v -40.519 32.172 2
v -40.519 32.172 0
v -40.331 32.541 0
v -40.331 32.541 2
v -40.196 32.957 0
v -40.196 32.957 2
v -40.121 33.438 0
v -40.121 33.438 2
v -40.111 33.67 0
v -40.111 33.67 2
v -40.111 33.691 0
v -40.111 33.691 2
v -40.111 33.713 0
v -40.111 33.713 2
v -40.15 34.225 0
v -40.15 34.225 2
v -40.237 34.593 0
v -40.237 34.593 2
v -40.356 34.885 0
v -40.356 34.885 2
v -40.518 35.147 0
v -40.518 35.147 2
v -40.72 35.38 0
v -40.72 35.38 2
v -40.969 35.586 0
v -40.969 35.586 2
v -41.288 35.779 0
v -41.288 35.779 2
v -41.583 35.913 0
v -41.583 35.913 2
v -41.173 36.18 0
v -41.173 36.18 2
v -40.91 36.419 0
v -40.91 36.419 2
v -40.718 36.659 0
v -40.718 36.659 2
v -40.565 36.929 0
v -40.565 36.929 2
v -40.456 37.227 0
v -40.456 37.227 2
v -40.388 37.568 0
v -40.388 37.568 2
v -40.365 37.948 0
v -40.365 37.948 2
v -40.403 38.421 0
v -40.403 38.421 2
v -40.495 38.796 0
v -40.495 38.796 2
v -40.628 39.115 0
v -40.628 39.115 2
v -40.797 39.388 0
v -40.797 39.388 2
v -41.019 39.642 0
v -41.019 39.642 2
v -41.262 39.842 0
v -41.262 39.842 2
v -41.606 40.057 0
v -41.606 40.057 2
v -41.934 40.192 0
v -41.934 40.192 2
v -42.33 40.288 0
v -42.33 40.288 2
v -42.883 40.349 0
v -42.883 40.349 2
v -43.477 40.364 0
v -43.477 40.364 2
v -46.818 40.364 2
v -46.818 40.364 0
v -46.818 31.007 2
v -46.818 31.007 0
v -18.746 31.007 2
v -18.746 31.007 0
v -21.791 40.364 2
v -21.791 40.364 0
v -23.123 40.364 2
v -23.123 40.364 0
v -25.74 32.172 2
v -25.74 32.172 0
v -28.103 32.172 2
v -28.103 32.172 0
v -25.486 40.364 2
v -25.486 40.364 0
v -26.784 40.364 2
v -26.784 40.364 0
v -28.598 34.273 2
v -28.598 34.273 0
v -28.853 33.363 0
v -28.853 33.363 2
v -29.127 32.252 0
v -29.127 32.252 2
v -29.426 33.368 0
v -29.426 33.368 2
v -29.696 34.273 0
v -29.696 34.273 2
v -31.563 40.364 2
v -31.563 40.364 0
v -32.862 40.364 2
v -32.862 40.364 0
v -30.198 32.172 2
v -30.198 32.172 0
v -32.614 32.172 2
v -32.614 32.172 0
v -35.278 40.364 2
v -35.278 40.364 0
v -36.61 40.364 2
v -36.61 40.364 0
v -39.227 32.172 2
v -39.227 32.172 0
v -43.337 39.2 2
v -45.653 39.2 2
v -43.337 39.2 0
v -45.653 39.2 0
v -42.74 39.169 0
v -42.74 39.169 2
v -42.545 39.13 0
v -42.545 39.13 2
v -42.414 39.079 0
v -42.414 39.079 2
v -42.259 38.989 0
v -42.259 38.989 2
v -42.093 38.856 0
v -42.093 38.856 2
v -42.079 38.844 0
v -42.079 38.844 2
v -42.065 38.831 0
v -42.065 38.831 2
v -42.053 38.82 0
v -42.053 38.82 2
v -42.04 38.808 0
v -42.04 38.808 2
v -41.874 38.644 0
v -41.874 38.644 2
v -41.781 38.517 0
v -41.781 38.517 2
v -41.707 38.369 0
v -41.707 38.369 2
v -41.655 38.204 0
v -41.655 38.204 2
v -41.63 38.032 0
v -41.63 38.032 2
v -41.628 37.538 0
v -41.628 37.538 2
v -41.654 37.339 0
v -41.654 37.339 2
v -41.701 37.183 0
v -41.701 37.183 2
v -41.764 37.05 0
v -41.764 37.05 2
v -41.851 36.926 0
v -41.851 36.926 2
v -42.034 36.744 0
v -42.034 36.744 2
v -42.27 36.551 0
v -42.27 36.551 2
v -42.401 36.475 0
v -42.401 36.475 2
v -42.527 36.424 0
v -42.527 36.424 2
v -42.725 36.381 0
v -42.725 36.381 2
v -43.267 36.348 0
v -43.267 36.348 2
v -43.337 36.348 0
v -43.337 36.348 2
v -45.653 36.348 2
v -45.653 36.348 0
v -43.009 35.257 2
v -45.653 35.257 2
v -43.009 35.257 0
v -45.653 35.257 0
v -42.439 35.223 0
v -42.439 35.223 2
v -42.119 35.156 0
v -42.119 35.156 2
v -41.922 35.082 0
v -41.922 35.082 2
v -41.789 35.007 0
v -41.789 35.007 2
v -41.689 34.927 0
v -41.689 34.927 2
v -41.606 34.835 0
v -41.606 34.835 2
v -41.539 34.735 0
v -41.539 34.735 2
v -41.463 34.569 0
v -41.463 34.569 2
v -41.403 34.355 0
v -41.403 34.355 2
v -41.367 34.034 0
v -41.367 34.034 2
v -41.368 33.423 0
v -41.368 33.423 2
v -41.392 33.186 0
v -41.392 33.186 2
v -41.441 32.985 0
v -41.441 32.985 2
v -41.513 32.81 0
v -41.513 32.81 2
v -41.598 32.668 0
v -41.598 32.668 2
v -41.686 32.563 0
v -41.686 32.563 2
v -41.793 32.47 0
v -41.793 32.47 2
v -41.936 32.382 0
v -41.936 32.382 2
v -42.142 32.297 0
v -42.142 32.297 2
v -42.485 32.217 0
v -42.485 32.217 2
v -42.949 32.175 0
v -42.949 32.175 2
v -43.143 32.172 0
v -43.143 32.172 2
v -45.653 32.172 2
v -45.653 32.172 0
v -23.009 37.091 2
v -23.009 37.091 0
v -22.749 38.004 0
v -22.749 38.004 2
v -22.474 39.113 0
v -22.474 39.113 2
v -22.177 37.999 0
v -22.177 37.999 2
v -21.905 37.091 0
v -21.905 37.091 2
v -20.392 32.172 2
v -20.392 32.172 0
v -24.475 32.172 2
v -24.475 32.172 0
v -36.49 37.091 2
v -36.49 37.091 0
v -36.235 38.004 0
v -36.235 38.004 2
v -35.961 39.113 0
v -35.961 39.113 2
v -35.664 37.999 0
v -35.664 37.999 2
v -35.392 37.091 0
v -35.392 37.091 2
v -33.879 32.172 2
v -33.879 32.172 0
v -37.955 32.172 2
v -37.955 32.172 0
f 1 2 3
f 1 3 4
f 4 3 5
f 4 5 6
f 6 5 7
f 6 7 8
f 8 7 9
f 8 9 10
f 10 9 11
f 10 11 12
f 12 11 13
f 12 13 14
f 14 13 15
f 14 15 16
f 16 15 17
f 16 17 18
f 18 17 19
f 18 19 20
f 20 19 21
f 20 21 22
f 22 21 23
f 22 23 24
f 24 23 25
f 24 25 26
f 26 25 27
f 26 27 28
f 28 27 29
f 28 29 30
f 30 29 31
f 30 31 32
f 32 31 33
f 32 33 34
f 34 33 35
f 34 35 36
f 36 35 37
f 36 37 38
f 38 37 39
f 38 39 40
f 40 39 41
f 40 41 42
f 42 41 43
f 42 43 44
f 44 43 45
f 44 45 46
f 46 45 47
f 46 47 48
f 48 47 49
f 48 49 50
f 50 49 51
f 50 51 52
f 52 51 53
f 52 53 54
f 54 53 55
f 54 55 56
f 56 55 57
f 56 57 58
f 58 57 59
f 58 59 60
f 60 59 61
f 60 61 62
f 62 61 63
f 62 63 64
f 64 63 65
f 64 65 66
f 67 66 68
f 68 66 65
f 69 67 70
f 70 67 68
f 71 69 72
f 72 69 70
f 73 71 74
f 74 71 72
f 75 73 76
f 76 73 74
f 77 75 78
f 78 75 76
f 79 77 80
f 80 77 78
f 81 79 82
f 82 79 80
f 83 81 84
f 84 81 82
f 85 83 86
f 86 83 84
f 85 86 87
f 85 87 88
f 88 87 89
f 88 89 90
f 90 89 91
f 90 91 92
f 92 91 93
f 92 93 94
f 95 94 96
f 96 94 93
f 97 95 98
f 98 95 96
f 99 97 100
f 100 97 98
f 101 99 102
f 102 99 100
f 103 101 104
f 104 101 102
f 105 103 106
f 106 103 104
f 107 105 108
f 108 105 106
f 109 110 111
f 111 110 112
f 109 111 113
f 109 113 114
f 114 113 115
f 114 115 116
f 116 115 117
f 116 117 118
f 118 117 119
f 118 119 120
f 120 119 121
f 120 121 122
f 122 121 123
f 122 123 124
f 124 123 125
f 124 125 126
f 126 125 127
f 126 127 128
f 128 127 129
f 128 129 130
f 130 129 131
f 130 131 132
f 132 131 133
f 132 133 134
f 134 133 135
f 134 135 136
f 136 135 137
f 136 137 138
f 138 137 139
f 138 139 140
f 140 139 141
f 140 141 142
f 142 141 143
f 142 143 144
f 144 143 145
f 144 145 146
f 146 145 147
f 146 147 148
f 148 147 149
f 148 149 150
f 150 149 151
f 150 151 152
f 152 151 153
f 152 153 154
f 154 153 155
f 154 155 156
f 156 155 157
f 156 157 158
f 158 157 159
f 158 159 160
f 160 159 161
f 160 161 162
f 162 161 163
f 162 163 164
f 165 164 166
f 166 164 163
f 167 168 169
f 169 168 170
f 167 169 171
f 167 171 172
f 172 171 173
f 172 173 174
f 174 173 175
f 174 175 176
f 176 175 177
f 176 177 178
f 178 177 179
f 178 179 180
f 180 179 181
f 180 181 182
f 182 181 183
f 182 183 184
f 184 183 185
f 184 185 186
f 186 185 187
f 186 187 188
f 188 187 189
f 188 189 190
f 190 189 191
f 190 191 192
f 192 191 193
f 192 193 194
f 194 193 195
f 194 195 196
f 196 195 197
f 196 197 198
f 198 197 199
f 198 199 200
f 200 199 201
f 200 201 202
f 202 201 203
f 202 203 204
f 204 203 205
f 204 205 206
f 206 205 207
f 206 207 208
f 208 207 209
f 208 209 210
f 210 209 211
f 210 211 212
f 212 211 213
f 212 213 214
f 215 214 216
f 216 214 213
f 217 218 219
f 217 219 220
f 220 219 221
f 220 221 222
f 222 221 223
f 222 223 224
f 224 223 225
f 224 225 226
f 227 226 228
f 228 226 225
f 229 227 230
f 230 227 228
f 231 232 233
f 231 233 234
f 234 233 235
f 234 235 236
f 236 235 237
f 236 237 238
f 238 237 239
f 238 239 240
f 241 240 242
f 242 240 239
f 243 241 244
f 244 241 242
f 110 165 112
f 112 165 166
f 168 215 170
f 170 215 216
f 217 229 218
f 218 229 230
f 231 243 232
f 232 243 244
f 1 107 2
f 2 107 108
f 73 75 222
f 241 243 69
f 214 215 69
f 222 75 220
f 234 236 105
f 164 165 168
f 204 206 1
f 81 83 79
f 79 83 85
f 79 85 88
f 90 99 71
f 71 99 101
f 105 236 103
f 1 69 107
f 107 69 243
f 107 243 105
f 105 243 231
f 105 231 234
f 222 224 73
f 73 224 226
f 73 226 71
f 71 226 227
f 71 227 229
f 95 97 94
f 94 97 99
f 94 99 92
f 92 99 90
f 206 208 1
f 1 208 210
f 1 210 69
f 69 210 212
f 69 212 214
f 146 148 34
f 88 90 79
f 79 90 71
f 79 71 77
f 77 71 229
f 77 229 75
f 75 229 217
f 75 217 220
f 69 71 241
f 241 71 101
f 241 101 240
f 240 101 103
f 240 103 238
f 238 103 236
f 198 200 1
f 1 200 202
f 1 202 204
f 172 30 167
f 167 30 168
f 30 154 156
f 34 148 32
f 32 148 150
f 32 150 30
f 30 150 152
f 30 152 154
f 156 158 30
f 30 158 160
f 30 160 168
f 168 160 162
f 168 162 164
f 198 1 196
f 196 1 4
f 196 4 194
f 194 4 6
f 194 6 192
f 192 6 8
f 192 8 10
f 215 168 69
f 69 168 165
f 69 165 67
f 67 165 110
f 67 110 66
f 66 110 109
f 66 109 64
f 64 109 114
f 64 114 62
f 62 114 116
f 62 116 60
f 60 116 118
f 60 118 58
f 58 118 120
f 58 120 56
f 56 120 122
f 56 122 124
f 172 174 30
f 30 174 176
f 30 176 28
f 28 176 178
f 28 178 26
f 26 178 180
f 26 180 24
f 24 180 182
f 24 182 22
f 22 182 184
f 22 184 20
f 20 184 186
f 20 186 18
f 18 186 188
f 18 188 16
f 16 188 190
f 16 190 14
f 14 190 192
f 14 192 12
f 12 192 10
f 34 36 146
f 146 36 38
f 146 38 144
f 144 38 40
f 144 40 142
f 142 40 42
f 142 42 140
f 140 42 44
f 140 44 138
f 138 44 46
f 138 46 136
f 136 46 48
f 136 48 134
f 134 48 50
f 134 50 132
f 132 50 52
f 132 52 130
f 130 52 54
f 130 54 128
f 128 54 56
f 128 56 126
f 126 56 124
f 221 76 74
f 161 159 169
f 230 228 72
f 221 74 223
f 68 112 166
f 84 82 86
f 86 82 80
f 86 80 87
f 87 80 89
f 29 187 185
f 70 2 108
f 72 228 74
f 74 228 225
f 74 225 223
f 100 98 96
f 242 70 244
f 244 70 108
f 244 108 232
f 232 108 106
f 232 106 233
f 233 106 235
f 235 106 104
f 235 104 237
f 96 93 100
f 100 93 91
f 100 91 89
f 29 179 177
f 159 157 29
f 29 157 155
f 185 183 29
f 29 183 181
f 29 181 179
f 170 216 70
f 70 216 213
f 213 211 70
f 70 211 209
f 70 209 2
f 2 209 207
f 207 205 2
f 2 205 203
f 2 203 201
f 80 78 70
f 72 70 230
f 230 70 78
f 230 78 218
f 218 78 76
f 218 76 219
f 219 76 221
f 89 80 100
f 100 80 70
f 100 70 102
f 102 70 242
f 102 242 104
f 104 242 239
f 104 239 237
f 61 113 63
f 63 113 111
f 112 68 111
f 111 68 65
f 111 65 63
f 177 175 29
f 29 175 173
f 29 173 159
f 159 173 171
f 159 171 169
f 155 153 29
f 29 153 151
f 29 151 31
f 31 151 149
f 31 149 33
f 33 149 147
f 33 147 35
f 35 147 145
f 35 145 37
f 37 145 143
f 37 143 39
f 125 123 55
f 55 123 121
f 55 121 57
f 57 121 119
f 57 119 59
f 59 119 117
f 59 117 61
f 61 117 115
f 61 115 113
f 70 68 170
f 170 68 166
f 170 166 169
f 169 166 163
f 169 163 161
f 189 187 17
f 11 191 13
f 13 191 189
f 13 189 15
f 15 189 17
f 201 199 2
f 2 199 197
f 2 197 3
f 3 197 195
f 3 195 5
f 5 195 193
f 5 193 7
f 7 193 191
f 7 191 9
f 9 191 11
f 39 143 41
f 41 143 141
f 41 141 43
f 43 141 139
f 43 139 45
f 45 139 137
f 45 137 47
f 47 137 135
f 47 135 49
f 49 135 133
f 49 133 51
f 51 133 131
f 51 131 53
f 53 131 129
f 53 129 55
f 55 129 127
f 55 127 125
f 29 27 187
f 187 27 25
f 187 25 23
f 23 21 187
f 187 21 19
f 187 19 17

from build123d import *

# Parameters (mm, degrees)
BOSS_EXTRUDE1_DEPTH = 2


with BuildPart() as part:
    # Sketch1 → Boss-Extrude1 (new body)
    with BuildSketch(Plane.XY):
        with BuildLine():
            Line((-18.745582546, 31.006914048), (-21.79105099, 40.364252392))
            Line((-21.79105099, 40.364252392), (-23.123022137, 40.364252392))
            Line((-23.123022137, 40.364252392), (-25.740106044, 32.171592169))
            Line((-25.740106044, 32.171592169), (-28.102880037, 32.171592169))
            Line((-28.102880037, 32.171592169), (-25.485755278, 40.364252392))
            Line((-25.485755278, 40.364252392), (-26.78426782, 40.364252392))
            Line((-26.78426782, 40.364252392), (-28.598181785, 34.273274652))
            add(Edge.make_bspline(
                [(-28.598181785, 34.273274652), (-28.792274379, 33.597239241), (-28.906090832, 33.19565427), (-29.126942139, 32.251909163)],
                knots=[6, 6, 6, 6, 7, 7, 7, 7], degree=3))
            add(Edge.make_bspline(
                [(-29.126942139, 32.251909163), (-29.414792363, 33.316129761), (-29.448250968, 33.490163533), (-29.695901842, 34.273274652)],
                knots=[7, 7, 7, 7, 8, 8, 8, 8], degree=3))
            Line((-29.695901842, 34.273274652), (-31.563333235, 40.364252392))
            Line((-31.563333235, 40.364252392), (-32.861845777, 40.364252392))
            Line((-32.861845777, 40.364252392), (-30.197903482, 32.171592169))
            Line((-30.197903482, 32.171592169), (-32.614194903, 32.171592169))
            Line((-32.614194903, 32.171592169), (-35.278137198, 40.364252392))
            Line((-35.278137198, 40.364252392), (-36.610149199, 40.364252392))
            Line((-36.610149199, 40.364252392), (-39.227233105, 32.171592169))
            Line((-39.227233105, 32.171592169), (-40.519045756, 32.171592169))
            add(Edge.make_bspline(
                [(-40.519045756, 32.171592169), (-40.257995098, 32.593235961), (-40.110760894, 33.122037168), (-40.110760894, 33.69765591)],
                knots=[16, 16, 16, 16, 17, 17, 17, 17], degree=3))
            add(Edge.make_bspline(
                [(-40.110760894, 33.69765591), (-40.110760894, 34.82213468), (-40.572604036, 35.511569875), (-41.583307207, 35.913154846)],
                knots=[17, 17, 17, 17, 18, 18, 18, 18], degree=3))
            add(Edge.make_bspline(
                [(-41.583307207, 35.913154846), (-40.739937916, 36.374997988), (-40.365111659, 37.010874903), (-40.365111659, 37.947920118)],
                knots=[18, 18, 18, 18, 19, 19, 19, 19], degree=3))
            add(Edge.make_bspline(
                [(-40.365111659, 37.947920118), (-40.365111659, 38.764530696), (-40.679679744, 39.433866215), (-41.261998378, 39.842151078)],
                knots=[19, 19, 19, 19, 20, 20, 20, 20], degree=3))
            add(Edge.make_bspline(
                [(-41.261998378, 39.842151078), (-41.790799584, 40.23707701), (-42.353018543, 40.364252392), (-43.477497314, 40.364252392)],
                knots=[20, 20, 20, 20, 21, 21, 21, 21], degree=3))
            Line((-43.477497314, 40.364252392), (-46.817515873, 40.364252392))
            Line((-46.817515873, 40.364252392), (-46.817515873, 31.006914048))
            Line((-46.817515873, 31.006914048), (-18.745582546, 31.006914048))
        make_face()
        with BuildLine():
            Line((-43.142829554, 32.171592169), (-45.652837753, 32.171592169))
            Line((-45.652837753, 32.171592169), (-45.652837753, 35.257219109))
            Line((-45.652837753, 35.257219109), (-43.008995132, 35.257219109))
            add(Edge.make_bspline(
                [(-43.008995132, 35.257219109), (-41.958133464, 35.257219109), (-41.362415047, 34.708359081), (-41.362415047, 34.051267898), (-41.362415047, 33.725531232), (-41.362415054, 33.724414624)],
                knots=[0, 0, 0, 0, 1, 2, 2.003439864, 2.003439864, 2.003439864, 2.003439864], degree=3))
            add(Edge.make_bspline(
                [(-41.362415054, 33.724414624), (-41.362417047, 33.400922858), (-41.363577782, 32.75955684), (-42.038450458, 32.171592169), (-43.142829554, 32.171592169)],
                knots=[2.003439864, 2.003439864, 2.003439864, 2.003439864, 3, 4, 4, 4, 4], degree=3))
        make_face(mode=Mode.SUBTRACT)
        with BuildLine():
            Line((-33.87924884, 32.171592169), (-37.955479277, 32.171592169))
            Line((-37.955479277, 32.171592169), (-36.489632855, 37.091191897))
            add(Edge.make_bspline(
                [(-36.489632855, 37.091191897), (-36.295540261, 37.767227308), (-36.181764662, 38.17551217), (-35.960872501, 39.112598239)],
                knots=[1, 1, 1, 1, 2, 2, 2, 2], degree=3))
            add(Edge.make_bspline(
                [(-35.960872501, 39.112598239), (-35.679763022, 38.048336787), (-35.639604525, 37.881002907), (-35.391953651, 37.091191897)],
                knots=[2, 2, 2, 2, 3, 3, 3, 3], degree=3))
            Line((-35.391953651, 37.091191897), (-33.87924884, 32.171592169))
        make_face(mode=Mode.SUBTRACT)
        with BuildLine():
            add(Edge.make_bspline(
                [(-22.47374544, 39.112598239), (-22.19263596, 38.048336787), (-22.152477463, 37.881002907), (-21.904826589, 37.091191897)],
                knots=[1, 1, 1, 1, 2, 2, 2, 2], degree=3))
            Line((-21.904826589, 37.091191897), (-20.392121778, 32.171592169))
            Line((-20.392121778, 32.171592169), (-24.47509296, 32.171592169))
            Line((-24.47509296, 32.171592169), (-23.009246538, 37.091191897))
            add(Edge.make_bspline(
                [(-23.009246538, 37.091191897), (-22.808413199, 37.767227308), (-22.6946376, 38.17551217), (-22.47374544, 39.112598239)],
                knots=[0, 0, 0, 0, 1, 1, 1, 1], degree=3))
        make_face(mode=Mode.SUBTRACT)
        with BuildLine():
            Line((-45.652837753, 36.348239275), (-45.652837753, 39.199615125))
            Line((-45.652837753, 39.199615125), (-43.336963001, 39.199615125))
            add(Edge.make_bspline(
                [(-43.336963001, 39.199615125), (-42.7278448, 39.199615125), (-42.37024646, 39.09102995), (-42.179170008, 38.931701151), (-42.093373815, 38.855654373)],
                knots=[0, 0, 0, 0, 1, 1.908075185, 1.908075185, 1.908075185, 1.908075185], degree=3))
            add(Edge.make_bspline(
                [(-42.093373815, 38.855654373), (-42.083891518, 38.847731554), (-42.074504957, 38.839663032), (-42.065209172, 38.831447907)],
                knots=[1.967701589, 1.967701589, 1.967701589, 1.967701589, 2, 2, 2, 2], degree=3))
            add(Edge.make_bspline(
                [(-42.065209172, 38.831447907), (-42.05671789, 38.823784642), (-42.048329136, 38.815980397), (-42.040044694, 38.808039137)],
                knots=[2, 2, 2, 2, 2.030943823, 2.030943823, 2.030943823, 2.030943823], degree=3))
            add(Edge.make_bspline(
                [(-42.040044694, 38.808039137), (-41.956028804, 38.732525824), (-41.785347703, 38.570931339), (-41.623764076, 38.189616071), (-41.623466502, 37.918150912), (-41.623465709, 37.780586238)],
                knots=[2.097742568, 2.097742568, 2.097742568, 2.097742568, 3, 4, 4.994650719, 4.994650719, 4.994650719, 4.994650719], degree=3))
            add(Edge.make_bspline(
                [(-41.623465709, 37.780586238), (-41.623465704, 37.779846409), (-41.623465704, 37.640790138), (-41.623465704, 37.358942446), (-41.777399801, 36.970716406), (-41.969272715, 36.801149228), (-42.065209172, 36.71636564)],
                knots=[4.994650719, 4.994650719, 4.994650719, 4.994650719, 5, 6, 7, 8, 8, 8, 8], degree=3))
            add(Edge.make_bspline(
                [(-42.065209172, 36.71636564), (-42.161145629, 36.631582051), (-42.353018543, 36.462014874), (-42.7278448, 36.348239275), (-43.336963001, 36.348239275)],
                knots=[8, 8, 8, 8, 9, 10, 10, 10, 10], degree=3))
            Line((-43.336963001, 36.348239275), (-45.652837753, 36.348239275))
        make_face(mode=Mode.SUBTRACT)
    extrude(amount=BOSS_EXTRUDE1_DEPTH)


solid = part.part
